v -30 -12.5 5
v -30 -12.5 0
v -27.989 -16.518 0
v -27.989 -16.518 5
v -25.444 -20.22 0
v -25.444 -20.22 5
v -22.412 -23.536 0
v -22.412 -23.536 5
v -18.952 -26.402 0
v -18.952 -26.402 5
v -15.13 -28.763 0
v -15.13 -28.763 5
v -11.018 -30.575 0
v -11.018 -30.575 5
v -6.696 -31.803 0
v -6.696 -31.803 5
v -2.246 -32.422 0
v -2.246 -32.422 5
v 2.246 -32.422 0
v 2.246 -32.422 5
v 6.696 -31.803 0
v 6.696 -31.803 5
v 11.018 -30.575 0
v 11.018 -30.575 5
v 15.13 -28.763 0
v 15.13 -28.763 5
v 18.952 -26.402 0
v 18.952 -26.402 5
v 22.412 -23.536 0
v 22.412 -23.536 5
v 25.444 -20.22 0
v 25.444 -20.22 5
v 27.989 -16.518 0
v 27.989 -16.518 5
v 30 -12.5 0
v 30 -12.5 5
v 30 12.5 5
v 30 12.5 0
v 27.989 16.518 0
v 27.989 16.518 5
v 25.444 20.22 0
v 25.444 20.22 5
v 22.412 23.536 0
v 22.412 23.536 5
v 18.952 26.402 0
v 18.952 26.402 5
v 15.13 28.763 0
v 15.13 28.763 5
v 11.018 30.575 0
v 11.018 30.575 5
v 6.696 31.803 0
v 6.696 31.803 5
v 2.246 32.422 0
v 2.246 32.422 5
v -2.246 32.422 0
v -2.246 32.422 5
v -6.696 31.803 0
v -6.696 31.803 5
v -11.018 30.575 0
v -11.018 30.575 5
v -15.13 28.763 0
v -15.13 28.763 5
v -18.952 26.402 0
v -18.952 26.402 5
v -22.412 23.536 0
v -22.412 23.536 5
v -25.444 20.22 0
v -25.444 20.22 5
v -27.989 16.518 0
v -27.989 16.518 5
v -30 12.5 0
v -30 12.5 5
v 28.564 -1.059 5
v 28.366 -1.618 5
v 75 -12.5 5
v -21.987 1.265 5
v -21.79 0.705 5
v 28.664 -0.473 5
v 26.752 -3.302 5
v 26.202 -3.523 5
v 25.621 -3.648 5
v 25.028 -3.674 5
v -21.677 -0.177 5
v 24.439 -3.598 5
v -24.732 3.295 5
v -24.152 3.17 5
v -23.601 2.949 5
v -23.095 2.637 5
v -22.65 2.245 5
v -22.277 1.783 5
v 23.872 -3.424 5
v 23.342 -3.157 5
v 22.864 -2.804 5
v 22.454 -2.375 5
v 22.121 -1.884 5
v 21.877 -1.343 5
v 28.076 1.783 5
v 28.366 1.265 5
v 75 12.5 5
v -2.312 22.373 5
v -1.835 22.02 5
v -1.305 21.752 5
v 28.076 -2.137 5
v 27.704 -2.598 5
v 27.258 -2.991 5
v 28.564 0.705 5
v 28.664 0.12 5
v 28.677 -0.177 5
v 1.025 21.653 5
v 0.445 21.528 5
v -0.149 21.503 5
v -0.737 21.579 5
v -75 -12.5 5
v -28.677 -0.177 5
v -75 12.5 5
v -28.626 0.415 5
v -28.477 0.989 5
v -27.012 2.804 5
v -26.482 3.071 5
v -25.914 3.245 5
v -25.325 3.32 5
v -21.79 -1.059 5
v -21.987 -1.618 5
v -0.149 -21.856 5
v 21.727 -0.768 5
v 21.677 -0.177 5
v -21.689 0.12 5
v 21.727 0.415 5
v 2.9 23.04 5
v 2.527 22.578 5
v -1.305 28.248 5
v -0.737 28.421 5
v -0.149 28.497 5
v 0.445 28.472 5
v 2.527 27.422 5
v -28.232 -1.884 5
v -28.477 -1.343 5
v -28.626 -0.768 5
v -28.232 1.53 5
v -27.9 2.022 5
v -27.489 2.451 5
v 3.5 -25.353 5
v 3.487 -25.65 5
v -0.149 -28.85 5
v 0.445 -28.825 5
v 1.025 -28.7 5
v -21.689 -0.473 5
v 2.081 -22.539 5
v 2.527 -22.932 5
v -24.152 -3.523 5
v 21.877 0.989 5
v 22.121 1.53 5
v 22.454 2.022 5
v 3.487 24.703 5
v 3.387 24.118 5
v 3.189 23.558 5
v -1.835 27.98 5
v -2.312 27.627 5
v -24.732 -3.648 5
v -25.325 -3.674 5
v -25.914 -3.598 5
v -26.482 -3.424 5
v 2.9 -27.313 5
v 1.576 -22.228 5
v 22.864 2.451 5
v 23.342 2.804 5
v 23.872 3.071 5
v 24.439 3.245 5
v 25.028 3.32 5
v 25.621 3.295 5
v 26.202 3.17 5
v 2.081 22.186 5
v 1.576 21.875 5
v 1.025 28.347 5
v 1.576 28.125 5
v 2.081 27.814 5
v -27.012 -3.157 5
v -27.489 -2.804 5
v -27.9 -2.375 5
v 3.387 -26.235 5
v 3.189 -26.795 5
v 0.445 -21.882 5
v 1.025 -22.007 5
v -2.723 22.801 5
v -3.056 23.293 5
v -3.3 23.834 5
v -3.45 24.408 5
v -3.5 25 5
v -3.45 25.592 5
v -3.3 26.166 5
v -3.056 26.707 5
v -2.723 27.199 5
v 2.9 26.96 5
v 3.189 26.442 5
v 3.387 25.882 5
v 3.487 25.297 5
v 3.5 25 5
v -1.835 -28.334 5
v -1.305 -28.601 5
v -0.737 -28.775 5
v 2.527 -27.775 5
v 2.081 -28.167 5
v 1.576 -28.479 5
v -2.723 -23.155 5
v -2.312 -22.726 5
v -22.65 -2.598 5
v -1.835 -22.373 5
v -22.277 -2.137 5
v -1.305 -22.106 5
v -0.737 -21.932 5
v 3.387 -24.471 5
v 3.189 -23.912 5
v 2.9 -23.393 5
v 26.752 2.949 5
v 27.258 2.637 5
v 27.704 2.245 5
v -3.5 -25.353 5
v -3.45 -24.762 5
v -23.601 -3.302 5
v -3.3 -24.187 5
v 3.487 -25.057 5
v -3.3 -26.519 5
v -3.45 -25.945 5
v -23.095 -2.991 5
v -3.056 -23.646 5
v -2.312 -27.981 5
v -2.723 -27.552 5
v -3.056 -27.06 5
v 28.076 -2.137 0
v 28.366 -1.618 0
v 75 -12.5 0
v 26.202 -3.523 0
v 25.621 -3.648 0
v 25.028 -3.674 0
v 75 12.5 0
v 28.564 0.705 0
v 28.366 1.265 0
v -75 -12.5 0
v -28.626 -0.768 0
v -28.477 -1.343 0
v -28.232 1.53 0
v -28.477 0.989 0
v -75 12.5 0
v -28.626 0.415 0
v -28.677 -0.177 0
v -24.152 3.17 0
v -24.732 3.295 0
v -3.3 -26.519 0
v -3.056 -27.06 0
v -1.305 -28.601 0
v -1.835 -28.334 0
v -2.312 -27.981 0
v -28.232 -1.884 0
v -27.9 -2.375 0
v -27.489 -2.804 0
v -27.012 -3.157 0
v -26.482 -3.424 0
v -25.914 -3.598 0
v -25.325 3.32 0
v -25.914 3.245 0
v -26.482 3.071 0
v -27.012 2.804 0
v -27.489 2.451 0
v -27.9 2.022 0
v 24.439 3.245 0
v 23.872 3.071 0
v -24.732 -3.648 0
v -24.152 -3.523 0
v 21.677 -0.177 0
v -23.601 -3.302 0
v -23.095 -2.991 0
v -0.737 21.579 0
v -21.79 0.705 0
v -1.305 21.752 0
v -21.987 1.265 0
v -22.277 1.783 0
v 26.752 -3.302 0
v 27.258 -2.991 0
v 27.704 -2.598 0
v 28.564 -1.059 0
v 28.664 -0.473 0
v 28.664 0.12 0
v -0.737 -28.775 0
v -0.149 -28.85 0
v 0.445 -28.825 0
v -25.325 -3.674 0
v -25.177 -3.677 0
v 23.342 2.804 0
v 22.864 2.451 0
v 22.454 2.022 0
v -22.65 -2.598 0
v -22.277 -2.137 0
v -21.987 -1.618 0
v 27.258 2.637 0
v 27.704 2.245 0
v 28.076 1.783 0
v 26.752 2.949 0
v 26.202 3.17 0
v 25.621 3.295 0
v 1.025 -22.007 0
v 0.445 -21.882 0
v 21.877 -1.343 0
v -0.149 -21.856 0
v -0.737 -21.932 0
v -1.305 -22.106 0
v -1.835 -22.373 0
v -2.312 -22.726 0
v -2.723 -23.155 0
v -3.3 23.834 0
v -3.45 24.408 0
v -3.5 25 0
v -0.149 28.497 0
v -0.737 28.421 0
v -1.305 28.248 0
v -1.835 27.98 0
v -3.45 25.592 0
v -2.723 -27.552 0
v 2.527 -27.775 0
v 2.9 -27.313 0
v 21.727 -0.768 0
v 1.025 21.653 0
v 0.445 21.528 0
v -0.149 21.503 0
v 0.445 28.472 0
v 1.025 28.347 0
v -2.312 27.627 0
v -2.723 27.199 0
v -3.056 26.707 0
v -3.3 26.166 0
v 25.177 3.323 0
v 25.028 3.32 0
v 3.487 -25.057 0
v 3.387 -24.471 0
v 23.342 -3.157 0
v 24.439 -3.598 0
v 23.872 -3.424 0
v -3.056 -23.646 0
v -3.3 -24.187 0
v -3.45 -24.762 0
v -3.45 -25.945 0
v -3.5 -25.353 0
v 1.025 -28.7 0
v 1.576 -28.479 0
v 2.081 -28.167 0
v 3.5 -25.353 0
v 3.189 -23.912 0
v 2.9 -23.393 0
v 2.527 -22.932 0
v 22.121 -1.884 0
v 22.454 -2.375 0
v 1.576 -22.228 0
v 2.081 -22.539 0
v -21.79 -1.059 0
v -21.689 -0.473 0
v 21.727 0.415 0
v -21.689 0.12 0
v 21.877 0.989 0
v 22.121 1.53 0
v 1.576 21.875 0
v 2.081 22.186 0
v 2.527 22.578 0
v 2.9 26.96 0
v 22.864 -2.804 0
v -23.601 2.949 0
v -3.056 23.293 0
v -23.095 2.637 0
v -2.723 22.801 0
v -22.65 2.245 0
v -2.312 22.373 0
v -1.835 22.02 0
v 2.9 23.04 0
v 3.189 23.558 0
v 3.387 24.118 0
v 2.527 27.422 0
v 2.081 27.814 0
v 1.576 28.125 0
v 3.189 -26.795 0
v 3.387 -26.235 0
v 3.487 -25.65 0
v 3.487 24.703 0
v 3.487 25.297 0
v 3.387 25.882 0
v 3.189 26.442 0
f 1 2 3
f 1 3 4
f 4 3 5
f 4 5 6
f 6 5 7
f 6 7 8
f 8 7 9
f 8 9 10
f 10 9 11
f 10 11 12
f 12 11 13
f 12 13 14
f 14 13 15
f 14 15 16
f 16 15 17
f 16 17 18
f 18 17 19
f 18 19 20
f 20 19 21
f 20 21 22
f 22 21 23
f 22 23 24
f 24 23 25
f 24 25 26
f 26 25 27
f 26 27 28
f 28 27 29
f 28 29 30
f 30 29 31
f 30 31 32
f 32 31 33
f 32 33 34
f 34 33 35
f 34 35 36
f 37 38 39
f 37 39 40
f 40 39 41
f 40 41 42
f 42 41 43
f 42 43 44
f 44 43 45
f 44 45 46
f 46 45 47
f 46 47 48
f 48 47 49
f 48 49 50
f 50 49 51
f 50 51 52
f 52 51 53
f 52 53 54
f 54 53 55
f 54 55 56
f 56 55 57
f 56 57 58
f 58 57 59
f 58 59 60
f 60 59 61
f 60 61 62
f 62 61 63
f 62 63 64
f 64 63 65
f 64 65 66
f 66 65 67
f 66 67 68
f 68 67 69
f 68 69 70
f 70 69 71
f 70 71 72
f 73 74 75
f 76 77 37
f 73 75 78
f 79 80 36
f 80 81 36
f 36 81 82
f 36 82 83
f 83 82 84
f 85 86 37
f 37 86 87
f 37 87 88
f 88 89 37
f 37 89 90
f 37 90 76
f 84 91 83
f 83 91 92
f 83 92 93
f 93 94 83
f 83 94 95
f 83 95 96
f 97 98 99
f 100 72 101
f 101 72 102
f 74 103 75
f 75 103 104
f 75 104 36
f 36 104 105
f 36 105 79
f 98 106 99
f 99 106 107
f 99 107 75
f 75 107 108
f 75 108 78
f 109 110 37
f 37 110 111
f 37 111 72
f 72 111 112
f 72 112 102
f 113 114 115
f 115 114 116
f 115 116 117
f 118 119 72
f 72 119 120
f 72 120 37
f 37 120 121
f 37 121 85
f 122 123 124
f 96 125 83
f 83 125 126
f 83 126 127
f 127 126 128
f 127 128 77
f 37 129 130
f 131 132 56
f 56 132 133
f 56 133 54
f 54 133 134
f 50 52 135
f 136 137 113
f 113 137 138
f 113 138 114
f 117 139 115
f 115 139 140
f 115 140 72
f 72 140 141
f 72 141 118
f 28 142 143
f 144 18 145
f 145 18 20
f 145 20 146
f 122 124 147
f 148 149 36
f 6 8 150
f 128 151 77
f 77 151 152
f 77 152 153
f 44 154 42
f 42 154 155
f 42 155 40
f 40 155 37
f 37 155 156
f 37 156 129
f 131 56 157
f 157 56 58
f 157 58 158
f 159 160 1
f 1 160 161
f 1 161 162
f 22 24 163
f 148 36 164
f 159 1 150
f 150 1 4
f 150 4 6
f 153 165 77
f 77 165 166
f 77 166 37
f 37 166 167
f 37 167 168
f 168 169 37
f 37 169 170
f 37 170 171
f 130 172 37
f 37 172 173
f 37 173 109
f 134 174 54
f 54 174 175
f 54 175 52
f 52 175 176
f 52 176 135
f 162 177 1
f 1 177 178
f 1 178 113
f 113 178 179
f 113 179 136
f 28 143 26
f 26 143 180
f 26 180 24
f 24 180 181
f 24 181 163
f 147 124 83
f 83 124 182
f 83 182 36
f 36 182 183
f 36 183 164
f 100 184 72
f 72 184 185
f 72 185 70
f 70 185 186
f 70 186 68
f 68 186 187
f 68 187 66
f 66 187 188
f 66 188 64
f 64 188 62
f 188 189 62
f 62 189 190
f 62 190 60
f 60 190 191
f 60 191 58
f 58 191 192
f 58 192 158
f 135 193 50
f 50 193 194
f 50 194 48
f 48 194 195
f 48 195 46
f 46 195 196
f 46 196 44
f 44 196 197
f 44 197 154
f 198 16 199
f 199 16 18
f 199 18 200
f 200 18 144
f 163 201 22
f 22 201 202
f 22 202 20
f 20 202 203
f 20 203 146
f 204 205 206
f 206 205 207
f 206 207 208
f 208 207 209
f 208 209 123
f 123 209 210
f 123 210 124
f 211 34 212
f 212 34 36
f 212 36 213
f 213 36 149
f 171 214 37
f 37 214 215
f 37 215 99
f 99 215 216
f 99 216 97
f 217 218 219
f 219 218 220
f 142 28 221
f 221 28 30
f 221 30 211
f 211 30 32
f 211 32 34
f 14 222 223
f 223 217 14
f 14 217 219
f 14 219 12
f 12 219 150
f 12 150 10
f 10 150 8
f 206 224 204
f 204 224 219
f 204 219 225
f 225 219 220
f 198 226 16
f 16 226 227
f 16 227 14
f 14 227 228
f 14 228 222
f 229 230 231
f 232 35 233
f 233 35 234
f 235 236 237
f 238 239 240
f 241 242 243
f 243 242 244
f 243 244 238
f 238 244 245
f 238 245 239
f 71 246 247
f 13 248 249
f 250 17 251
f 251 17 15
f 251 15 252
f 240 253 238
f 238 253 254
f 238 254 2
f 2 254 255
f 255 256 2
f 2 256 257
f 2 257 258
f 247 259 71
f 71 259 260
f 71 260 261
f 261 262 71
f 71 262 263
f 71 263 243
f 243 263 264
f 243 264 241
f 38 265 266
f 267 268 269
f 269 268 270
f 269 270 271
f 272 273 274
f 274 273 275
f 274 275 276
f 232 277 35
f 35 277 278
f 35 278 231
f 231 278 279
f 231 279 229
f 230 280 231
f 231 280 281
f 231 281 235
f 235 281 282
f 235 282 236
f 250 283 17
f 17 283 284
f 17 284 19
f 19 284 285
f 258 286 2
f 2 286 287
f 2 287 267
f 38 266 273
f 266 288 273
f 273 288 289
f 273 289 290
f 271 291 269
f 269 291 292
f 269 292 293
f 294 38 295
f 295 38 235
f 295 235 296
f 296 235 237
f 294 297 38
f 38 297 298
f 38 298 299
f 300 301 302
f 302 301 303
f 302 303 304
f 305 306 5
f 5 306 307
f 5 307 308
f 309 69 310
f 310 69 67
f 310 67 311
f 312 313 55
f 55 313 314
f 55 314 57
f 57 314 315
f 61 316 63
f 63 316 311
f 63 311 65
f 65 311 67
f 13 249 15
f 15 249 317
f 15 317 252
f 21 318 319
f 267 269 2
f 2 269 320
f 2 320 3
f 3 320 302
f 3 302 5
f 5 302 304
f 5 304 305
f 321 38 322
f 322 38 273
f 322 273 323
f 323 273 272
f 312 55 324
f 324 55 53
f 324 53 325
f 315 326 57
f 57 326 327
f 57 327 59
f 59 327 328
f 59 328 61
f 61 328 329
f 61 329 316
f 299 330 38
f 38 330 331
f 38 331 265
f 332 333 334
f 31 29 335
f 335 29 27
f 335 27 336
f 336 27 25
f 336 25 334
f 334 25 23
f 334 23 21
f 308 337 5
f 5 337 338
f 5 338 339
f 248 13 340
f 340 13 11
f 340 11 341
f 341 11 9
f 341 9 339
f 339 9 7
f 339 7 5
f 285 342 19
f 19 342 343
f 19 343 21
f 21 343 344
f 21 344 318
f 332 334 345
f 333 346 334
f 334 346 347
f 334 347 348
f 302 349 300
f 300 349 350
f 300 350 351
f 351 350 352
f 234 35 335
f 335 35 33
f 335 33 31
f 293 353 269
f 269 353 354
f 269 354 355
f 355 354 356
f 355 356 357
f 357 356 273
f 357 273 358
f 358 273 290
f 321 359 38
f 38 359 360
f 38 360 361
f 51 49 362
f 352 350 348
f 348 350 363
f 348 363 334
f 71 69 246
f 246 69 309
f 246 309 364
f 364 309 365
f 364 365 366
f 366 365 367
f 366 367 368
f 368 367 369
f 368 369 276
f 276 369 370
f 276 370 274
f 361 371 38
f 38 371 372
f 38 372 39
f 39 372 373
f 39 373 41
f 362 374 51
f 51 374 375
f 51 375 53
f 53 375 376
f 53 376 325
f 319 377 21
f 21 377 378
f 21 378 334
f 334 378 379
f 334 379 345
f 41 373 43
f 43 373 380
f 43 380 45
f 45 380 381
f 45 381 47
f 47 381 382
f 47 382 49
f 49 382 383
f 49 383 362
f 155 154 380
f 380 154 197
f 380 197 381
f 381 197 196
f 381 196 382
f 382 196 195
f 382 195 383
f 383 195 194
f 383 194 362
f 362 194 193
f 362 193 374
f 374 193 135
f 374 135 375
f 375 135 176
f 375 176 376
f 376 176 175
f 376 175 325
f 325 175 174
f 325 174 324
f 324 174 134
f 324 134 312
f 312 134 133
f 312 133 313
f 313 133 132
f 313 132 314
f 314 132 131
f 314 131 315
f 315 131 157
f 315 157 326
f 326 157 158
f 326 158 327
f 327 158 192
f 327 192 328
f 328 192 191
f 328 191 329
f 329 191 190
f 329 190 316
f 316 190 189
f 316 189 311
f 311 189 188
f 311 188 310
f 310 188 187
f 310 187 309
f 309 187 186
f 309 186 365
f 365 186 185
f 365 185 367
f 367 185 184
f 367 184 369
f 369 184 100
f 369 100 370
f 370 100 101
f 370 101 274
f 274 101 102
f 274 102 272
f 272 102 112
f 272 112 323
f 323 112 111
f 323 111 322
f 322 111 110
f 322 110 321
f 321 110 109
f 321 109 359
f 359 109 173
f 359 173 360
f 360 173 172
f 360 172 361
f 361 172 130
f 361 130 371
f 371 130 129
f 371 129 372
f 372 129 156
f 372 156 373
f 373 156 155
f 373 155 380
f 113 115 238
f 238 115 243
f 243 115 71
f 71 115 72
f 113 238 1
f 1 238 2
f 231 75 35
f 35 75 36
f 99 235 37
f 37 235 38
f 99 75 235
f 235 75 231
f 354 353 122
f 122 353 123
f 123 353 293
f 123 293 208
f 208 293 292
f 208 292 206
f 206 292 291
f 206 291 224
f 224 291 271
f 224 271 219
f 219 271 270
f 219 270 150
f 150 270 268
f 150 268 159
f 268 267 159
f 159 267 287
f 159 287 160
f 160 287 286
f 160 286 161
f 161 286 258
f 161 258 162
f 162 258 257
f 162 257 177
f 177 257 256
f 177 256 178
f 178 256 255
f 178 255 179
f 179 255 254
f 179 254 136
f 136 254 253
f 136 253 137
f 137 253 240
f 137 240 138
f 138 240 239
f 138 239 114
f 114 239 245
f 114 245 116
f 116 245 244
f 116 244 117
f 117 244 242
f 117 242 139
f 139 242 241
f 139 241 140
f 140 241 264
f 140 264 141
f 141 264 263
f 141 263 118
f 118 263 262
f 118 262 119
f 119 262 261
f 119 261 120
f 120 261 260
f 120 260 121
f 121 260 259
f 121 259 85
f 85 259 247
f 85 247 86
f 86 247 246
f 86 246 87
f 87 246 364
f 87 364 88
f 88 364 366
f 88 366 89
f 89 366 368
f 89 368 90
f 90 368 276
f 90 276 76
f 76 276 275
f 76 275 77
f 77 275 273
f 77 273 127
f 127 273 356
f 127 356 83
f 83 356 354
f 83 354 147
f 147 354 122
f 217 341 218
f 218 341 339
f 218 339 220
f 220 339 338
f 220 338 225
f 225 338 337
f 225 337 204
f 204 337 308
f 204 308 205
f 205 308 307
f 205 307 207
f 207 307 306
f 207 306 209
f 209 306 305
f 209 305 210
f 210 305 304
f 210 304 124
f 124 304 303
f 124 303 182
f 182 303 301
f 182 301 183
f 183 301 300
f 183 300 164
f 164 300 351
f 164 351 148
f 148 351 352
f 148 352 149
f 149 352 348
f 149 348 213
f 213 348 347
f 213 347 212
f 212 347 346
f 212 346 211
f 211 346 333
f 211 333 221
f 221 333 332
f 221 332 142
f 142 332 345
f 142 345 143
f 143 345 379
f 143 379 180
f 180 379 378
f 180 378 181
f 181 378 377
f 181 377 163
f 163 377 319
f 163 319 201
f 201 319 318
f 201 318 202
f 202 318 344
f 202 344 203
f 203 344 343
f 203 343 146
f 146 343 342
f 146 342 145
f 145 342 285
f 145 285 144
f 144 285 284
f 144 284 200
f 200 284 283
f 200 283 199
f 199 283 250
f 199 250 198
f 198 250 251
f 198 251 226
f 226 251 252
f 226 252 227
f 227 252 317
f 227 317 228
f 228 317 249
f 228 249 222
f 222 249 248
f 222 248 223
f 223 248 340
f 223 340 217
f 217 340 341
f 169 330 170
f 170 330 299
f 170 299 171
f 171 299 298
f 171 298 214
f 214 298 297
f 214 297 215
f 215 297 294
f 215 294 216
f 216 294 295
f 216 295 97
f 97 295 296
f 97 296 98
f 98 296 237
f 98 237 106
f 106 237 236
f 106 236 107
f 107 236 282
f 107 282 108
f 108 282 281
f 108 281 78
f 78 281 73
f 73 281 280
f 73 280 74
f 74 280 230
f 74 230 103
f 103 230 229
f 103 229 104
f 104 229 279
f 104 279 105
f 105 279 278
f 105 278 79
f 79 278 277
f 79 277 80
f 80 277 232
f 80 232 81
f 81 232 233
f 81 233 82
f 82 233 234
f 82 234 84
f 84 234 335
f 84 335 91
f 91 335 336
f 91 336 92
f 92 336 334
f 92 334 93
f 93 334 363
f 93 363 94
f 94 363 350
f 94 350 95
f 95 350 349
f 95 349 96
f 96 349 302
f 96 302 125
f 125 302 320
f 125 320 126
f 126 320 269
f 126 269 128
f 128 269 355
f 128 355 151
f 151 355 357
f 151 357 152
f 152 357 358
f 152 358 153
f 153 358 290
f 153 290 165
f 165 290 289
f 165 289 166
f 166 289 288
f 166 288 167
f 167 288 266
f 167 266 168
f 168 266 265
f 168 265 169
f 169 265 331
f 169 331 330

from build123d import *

# Parameters (mm, degrees)
SKIZZE1_R                       = 32.5
AUFSATZ_LINEAR_AUSTRAGEN1_DEPTH = 5
SKIZZE2_R                       = 3.5
SCHNITT_LINEAR_AUSTRAGEN1_DEPTH = 10
SKIZZE3_W                       = 150
SKIZZE3_H                       = 25
AUFSATZ_LINEAR_AUSTRAGEN2_DEPTH = 5
KREISMUSTER1_COUNT              = 4


with BuildPart() as part:
    # Skizze1 → Aufsatz-Linear austragen1 (new body)
    with BuildSketch(Plane.XY):
        Circle(SKIZZE1_R)
    extrude(amount=AUFSATZ_LINEAR_AUSTRAGEN1_DEPTH)

    # Skizze2 → Schnitt-Linear austragen1 (cut)
    with BuildSketch(Plane(origin=(0, 0, 0), x_dir=(-1, 0, 0), z_dir=(0, 0, -1))):
        with Locations((0, 25)):
            Circle(SKIZZE2_R)
    schnitt_linear_austragen1 = extrude(amount=-SCHNITT_LINEAR_AUSTRAGEN1_DEPTH, mode=Mode.SUBTRACT)

    # Skizze3 → Aufsatz-Linear austragen2 (add)
    with BuildSketch(Plane(origin=(0, 0, 0), x_dir=(-1, 0, 0), z_dir=(0, 0, -1))):
        Rectangle(SKIZZE3_W, SKIZZE3_H)
    extrude(amount=-AUFSATZ_LINEAR_AUSTRAGEN2_DEPTH)

    # Kreismuster1: Schnitt-Linear austragen1 ×4 about axis
    kreismuster1_axis = Axis((0, -0.17666974, 0), (0, 0, 1))
    for i in range(1, KREISMUSTER1_COUNT):
        add(schnitt_linear_austragen1.rotate(kreismuster1_axis, i * 360 / KREISMUSTER1_COUNT), mode=Mode.SUBTRACT)


solid = part.part
